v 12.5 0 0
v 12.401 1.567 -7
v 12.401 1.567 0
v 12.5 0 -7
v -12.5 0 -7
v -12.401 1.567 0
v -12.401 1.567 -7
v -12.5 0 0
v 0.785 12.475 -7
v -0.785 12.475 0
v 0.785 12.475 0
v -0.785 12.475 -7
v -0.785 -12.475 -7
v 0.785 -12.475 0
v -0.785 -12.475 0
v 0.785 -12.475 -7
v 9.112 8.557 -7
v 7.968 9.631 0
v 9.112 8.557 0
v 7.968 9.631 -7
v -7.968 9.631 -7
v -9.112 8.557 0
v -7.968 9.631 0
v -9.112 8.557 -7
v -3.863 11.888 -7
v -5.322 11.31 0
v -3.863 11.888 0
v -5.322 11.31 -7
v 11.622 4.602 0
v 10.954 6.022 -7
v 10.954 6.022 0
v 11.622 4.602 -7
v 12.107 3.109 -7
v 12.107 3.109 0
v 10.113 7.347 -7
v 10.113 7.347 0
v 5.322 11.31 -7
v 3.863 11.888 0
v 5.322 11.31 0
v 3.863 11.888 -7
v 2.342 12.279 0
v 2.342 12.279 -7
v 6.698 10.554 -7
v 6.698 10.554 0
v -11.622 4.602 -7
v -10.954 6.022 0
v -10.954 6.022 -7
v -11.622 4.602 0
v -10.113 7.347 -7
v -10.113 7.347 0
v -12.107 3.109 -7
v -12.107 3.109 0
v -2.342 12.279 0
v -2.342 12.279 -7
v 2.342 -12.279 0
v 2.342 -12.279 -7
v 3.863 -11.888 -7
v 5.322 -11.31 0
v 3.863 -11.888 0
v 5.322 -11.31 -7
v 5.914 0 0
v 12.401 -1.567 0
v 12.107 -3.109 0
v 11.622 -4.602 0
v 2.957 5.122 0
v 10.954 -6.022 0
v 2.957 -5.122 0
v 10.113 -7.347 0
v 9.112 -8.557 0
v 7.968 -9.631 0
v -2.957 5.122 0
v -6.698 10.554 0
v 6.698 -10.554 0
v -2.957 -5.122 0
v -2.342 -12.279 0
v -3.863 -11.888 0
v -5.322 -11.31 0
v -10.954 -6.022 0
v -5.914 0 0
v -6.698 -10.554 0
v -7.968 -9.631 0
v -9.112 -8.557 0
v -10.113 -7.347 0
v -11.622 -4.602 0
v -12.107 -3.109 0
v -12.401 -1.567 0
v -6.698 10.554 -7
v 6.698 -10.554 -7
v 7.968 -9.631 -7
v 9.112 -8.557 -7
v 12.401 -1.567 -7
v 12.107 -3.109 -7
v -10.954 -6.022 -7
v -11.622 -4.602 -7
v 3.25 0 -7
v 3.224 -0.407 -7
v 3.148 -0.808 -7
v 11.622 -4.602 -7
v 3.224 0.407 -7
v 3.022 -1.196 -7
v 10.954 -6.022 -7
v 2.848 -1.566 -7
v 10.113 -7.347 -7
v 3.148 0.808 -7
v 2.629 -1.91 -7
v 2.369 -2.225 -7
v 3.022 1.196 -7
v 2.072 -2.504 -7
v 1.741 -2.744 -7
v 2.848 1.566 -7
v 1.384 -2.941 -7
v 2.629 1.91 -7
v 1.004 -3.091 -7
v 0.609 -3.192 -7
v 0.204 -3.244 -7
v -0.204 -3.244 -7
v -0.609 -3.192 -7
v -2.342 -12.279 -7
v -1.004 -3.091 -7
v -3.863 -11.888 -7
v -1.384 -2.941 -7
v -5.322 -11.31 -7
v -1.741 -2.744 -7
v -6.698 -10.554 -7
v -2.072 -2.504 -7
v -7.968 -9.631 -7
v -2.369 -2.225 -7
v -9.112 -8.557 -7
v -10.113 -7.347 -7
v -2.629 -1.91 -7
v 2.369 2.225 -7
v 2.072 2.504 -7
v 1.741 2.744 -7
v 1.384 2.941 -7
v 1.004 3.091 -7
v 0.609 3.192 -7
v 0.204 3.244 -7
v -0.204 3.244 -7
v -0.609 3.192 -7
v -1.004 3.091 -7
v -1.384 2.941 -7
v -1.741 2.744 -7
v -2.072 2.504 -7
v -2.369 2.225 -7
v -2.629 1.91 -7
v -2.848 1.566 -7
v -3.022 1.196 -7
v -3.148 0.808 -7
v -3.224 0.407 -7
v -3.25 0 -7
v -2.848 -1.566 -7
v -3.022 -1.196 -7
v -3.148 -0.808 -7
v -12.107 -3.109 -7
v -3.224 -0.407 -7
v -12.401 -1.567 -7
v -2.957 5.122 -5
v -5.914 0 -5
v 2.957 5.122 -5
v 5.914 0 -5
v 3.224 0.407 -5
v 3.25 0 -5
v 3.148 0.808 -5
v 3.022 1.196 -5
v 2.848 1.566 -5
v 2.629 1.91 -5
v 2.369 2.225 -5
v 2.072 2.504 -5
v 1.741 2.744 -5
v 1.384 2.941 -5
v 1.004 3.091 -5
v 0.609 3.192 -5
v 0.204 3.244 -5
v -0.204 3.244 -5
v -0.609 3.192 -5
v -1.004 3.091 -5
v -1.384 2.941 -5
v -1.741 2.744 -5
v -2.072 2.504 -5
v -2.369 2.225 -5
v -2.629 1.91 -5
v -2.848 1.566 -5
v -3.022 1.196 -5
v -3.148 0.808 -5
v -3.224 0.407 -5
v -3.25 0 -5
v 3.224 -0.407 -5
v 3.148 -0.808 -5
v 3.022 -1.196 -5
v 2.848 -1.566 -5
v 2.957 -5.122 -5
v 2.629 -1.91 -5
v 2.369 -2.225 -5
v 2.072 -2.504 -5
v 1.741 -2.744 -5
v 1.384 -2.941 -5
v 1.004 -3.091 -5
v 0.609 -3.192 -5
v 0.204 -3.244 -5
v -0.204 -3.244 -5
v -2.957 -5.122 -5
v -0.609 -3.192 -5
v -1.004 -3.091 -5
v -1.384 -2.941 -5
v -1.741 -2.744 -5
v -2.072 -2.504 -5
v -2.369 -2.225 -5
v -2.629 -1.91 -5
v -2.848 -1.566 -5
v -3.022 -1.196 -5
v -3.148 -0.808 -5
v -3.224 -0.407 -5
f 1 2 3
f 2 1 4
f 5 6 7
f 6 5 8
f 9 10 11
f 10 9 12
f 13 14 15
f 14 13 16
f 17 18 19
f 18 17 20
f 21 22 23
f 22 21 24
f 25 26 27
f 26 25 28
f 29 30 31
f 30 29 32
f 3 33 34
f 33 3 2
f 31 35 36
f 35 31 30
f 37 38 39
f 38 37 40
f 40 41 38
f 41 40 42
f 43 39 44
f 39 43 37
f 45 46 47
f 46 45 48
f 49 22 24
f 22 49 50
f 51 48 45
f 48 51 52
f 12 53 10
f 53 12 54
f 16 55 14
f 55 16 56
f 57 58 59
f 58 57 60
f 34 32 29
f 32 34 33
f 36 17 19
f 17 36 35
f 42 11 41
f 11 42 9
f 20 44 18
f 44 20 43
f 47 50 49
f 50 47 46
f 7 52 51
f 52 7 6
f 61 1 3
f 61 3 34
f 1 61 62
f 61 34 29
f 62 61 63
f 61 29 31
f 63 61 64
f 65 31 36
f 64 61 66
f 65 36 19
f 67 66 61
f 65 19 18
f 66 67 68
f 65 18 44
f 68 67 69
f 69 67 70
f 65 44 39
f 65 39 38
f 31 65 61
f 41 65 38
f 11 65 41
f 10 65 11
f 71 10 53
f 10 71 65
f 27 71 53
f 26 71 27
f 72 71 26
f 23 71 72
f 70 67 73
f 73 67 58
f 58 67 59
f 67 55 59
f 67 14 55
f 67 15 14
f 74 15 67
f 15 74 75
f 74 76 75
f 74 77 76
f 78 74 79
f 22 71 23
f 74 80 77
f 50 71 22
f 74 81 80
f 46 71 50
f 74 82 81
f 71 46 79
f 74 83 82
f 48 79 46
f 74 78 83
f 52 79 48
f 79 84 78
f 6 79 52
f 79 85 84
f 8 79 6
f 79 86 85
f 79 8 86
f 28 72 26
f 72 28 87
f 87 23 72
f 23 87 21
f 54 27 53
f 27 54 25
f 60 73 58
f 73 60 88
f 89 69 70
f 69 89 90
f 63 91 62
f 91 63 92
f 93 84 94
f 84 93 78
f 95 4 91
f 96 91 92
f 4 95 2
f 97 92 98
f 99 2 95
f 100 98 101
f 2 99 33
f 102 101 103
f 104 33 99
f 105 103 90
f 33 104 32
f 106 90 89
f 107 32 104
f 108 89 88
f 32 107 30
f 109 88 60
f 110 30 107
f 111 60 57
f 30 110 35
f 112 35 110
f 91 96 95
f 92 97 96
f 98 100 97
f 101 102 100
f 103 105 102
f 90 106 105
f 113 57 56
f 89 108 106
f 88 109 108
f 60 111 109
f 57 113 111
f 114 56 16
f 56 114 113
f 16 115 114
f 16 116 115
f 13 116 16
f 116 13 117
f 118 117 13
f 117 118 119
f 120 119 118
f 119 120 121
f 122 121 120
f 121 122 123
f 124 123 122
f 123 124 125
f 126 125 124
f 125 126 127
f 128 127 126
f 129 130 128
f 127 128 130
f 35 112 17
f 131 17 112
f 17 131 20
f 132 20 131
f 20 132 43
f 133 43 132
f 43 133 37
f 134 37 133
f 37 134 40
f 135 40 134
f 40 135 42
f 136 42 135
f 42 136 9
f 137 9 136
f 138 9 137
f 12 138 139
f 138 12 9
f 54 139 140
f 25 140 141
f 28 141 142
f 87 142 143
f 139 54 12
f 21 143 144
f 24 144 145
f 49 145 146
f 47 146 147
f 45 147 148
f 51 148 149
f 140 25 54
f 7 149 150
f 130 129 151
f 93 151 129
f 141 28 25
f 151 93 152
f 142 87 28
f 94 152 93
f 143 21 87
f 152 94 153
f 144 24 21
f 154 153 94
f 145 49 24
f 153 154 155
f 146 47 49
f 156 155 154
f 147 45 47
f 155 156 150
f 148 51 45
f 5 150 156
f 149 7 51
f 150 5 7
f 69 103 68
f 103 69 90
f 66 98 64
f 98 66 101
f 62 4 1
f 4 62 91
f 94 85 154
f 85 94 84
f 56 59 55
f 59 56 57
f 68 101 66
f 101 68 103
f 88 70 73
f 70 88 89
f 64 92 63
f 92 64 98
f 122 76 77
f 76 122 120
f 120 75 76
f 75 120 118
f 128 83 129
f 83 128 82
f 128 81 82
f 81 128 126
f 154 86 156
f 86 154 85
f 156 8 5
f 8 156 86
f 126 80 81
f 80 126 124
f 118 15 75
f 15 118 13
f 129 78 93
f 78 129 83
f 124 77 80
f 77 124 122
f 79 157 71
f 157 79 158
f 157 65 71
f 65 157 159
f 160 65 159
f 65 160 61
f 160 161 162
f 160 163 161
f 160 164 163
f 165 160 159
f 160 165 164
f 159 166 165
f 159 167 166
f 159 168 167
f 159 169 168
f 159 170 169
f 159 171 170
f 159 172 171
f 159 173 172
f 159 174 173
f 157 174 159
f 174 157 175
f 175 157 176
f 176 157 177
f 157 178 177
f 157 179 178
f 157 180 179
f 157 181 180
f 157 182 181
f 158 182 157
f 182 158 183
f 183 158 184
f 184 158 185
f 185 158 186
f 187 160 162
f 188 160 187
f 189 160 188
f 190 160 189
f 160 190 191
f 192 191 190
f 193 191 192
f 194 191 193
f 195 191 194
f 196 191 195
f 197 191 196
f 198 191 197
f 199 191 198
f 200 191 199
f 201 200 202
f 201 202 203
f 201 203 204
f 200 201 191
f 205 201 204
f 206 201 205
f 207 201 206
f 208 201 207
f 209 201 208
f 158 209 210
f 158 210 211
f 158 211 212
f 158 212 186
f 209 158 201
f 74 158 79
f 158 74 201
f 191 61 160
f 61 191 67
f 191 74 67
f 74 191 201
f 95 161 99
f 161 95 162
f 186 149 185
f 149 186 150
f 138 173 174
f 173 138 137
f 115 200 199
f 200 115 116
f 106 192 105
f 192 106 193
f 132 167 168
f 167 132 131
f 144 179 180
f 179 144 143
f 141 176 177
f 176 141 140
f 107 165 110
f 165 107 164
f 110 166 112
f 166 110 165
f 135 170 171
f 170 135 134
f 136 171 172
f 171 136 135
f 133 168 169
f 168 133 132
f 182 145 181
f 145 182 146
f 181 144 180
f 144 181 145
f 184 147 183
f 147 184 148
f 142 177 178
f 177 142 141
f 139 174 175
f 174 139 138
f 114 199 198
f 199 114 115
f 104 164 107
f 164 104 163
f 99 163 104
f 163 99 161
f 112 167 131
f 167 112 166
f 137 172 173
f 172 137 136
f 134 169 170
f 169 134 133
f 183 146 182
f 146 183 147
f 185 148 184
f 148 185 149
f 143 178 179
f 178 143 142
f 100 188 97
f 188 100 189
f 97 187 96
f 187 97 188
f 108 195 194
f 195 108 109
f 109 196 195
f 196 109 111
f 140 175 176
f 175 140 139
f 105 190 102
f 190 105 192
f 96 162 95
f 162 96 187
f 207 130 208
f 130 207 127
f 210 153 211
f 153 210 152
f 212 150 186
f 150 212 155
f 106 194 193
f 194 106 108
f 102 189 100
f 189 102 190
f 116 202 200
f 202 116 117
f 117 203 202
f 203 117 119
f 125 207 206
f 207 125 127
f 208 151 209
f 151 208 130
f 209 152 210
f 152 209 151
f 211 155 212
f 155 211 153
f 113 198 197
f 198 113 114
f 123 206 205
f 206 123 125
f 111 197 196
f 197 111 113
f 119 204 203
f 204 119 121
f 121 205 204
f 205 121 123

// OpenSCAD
$fn = 50;


difference() {
	union() {
		translate(v = [0, 0, -7.0000000000]) {
			cylinder(h = 7.0000000000, r = 12.5000000000);
		}
		#translate(v = [0, 0, -8.5000000000]) {
			cylinder(h = 8.5000000000, r = 2.8750000000);
		}
	}
	union() {
		translate(v = [0, 0, 0]) {
			rotate(a = [0, 0, 0]) {
				difference() {
					union() {
						translate(v = [0, 0, -5]) {
							linear_extrude(height = 5) {
								polygon(points = [[5.9142500000, 0.0000000000], [2.9571250000, 5.1218907443], [-2.9571250000, 5.1218907443], [-5.9142500000, 0.0000000000], [-2.9571250000, -5.1218907443], [2.9571250000, -5.1218907443]]);
							}
						}
					}
					union();
				}
			}
		}
		#translate(v = [0, 0, -100.0000000000]) {
			cylinder(h = 200, r = 3.2500000000);
		}
	}
}
